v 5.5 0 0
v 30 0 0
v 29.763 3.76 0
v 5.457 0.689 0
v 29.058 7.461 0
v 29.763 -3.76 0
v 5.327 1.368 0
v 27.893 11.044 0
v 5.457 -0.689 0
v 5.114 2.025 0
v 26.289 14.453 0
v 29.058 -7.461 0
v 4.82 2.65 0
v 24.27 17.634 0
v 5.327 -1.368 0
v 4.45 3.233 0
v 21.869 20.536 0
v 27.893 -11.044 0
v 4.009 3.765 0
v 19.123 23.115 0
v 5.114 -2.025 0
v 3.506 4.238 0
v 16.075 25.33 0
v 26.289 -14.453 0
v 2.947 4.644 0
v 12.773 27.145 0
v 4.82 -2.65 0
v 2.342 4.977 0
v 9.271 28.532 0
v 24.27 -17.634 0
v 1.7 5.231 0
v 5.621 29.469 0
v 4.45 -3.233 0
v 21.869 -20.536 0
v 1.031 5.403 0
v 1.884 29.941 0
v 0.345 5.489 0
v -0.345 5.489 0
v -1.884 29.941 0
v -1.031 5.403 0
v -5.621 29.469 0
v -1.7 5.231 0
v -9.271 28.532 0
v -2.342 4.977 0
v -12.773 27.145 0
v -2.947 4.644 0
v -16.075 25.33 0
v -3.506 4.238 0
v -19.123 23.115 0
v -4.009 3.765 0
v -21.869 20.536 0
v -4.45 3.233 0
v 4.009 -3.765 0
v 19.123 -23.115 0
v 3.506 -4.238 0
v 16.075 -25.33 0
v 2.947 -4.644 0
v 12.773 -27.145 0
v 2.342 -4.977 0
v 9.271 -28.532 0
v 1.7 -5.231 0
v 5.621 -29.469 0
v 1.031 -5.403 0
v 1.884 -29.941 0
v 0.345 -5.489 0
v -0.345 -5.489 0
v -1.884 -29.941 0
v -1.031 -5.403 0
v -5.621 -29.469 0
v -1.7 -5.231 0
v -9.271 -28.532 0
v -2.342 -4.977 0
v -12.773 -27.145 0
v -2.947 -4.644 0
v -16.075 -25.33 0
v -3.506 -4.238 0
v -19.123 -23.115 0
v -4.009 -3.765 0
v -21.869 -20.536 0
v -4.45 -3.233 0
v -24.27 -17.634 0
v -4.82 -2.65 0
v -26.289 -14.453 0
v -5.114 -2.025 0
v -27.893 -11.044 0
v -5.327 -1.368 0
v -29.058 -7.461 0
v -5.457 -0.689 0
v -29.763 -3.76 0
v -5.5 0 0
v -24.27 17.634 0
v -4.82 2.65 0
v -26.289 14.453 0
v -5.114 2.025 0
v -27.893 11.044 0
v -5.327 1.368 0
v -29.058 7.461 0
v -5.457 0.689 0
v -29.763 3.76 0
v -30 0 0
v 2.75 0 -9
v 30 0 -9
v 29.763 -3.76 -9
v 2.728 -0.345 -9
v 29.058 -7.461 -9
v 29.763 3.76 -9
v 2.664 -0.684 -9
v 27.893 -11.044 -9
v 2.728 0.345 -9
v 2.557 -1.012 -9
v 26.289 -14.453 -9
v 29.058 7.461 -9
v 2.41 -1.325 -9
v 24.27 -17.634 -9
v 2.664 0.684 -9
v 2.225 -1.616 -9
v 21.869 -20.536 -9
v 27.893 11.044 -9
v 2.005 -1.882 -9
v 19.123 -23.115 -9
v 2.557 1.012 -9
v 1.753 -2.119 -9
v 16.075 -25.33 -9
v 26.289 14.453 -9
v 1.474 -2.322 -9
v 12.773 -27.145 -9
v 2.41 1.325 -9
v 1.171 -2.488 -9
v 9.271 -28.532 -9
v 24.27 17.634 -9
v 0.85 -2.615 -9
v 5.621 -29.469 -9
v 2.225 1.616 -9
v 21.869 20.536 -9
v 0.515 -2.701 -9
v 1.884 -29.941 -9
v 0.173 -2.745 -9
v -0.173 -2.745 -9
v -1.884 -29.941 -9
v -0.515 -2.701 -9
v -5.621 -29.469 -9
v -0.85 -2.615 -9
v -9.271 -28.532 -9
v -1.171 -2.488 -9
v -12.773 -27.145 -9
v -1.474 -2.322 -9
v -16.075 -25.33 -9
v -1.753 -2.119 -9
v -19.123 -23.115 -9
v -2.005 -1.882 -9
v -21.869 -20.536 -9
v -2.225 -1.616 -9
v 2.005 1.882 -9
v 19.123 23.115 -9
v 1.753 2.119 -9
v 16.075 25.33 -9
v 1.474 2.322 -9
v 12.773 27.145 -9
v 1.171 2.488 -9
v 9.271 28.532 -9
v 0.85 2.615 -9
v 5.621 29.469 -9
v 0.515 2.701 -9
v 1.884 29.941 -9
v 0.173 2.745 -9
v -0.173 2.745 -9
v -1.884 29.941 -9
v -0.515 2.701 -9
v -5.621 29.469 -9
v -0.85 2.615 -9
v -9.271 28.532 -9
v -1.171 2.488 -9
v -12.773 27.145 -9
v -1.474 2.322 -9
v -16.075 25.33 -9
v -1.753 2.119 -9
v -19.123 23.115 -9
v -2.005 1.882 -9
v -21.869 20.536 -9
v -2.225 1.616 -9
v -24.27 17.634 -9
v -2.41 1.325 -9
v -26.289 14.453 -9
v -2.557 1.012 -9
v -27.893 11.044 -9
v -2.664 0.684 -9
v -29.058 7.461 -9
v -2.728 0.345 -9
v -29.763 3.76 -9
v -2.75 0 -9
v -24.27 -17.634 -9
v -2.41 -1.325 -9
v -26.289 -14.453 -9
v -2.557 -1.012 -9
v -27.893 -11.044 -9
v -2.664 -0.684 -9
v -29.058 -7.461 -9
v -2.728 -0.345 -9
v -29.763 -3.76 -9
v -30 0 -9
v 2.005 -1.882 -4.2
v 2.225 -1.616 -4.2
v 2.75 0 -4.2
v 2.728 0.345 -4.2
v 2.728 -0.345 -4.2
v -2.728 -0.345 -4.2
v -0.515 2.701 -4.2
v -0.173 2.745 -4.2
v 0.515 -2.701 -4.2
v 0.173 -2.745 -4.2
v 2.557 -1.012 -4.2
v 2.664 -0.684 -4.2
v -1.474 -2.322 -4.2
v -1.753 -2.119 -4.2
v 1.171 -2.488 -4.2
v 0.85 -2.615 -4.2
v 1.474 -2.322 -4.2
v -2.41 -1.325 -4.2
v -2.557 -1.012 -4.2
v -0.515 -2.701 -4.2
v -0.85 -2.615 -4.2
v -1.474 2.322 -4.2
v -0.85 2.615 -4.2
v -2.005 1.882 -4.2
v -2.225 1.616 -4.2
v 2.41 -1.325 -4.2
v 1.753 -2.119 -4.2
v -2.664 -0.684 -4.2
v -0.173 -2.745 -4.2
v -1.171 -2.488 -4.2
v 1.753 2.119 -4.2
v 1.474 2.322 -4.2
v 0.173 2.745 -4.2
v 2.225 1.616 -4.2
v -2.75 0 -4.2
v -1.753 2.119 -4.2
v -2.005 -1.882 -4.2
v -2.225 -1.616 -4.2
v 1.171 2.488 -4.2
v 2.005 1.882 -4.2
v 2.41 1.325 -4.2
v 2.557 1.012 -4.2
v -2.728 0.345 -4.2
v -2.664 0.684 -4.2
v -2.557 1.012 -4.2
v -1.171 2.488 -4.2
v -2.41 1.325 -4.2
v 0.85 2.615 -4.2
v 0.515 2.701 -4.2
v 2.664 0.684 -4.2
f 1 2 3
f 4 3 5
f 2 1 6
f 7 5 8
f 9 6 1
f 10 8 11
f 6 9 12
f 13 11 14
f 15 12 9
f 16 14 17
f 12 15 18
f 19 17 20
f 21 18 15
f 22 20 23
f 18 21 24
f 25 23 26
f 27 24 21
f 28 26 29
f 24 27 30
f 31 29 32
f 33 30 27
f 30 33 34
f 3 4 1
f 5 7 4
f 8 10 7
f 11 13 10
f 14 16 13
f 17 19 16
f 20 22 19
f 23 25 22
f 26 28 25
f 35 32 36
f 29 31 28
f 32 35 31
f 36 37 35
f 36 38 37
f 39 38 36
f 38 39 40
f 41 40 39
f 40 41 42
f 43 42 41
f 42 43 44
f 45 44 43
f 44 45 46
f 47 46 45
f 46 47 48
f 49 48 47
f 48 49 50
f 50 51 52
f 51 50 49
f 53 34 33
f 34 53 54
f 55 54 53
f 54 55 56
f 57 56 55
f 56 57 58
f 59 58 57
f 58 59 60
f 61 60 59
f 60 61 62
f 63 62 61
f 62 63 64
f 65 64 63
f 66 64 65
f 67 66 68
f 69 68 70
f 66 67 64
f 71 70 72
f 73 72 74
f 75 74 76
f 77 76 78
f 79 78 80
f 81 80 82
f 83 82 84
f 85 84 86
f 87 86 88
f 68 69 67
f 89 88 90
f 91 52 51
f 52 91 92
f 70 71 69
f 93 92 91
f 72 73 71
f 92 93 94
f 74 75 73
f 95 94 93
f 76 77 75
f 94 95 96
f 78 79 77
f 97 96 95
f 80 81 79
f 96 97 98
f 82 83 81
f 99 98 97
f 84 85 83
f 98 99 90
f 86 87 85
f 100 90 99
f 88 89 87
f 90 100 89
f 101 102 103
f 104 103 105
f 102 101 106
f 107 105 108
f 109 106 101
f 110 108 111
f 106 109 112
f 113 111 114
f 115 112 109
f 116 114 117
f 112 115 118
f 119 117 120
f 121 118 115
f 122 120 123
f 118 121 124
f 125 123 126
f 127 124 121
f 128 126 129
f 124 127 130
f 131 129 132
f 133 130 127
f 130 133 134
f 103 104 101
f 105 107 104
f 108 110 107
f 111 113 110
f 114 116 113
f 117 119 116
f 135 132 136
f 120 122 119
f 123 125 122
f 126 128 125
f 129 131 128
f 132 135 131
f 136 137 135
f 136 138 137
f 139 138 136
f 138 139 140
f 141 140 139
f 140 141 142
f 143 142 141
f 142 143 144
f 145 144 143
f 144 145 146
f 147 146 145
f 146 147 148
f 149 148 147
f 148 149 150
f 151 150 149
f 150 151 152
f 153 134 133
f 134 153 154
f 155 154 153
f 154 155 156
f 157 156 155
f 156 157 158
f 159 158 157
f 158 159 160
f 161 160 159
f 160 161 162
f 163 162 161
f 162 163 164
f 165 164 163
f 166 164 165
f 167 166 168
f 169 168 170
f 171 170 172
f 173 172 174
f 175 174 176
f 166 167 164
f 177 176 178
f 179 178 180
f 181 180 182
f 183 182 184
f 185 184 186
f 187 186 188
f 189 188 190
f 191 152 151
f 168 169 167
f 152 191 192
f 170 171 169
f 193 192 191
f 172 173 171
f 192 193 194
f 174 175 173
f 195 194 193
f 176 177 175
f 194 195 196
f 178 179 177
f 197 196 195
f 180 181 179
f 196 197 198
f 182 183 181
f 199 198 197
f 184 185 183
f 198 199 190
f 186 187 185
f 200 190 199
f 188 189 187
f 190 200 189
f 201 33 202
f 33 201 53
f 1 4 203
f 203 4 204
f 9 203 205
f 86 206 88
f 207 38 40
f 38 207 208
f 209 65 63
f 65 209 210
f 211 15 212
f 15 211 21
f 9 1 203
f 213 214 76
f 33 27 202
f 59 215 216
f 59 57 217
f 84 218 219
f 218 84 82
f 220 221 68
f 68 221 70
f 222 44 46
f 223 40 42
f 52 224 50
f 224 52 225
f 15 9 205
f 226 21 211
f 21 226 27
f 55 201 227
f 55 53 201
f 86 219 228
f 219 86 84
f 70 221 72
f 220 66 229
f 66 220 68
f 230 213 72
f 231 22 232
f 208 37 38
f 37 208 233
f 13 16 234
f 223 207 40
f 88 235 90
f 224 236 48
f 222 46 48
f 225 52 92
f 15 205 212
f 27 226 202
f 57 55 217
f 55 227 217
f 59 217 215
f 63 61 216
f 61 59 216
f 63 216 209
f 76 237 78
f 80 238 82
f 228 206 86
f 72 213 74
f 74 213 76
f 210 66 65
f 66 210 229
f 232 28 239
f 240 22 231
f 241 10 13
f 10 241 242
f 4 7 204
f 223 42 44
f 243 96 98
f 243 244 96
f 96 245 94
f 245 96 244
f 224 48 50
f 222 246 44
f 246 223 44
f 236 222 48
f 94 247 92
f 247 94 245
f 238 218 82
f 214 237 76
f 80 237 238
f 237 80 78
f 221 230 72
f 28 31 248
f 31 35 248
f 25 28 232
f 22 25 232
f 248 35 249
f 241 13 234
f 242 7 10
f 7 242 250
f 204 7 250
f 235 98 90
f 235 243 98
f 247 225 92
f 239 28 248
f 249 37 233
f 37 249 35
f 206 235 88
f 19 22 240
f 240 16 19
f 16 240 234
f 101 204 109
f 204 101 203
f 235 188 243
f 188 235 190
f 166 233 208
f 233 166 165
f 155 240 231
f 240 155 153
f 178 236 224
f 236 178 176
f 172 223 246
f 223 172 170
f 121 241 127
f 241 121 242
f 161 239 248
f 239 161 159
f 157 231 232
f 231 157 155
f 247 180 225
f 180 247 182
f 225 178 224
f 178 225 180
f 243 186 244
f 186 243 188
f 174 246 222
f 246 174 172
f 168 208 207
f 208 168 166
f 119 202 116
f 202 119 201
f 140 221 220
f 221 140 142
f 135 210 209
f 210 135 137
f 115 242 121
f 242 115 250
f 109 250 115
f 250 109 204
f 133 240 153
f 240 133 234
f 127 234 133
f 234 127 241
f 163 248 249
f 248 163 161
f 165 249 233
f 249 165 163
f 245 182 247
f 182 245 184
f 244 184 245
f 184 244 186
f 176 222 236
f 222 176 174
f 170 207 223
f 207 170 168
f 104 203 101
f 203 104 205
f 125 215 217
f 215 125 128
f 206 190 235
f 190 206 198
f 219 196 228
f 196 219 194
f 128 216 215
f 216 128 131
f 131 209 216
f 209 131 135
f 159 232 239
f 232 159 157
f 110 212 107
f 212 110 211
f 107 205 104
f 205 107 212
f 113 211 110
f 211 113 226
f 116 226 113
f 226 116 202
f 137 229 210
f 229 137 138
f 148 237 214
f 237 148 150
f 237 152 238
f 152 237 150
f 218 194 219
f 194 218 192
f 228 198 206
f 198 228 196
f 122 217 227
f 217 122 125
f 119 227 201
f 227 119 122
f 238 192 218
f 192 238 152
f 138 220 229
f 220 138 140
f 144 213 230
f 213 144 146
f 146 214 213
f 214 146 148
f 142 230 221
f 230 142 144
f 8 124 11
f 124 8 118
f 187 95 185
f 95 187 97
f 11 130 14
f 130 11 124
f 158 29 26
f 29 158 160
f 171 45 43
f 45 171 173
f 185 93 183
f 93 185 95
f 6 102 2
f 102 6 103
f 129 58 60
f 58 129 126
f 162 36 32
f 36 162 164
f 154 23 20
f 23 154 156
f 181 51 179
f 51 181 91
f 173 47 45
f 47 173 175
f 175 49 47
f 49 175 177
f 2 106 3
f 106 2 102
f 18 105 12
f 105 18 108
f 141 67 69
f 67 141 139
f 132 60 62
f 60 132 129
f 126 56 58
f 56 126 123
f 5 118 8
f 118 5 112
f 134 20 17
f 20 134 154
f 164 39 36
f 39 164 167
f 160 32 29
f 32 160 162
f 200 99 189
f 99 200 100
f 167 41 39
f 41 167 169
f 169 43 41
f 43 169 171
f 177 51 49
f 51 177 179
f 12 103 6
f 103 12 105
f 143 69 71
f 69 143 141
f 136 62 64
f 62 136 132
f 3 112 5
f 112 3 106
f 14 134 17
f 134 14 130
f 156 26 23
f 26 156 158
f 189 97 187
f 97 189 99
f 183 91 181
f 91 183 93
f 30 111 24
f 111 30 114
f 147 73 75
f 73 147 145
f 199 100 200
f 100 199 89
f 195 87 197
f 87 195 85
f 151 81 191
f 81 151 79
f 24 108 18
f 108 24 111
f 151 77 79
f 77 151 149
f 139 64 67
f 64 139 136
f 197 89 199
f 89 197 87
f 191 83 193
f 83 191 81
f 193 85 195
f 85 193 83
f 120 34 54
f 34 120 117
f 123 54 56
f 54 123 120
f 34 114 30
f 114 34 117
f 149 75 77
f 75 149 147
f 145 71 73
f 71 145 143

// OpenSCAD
$fn = 50;


difference() {
	union() {
		translate(v = [0, 0, -9.0000000000]) {
			cylinder(h = 9, r = 30.0000000000);
		}
	}
	union() {
		translate(v = [0, 0, 0]) {
			rotate(a = [0, 0, 0]) {
				difference() {
					union() {
						translate(v = [0, 0, -9.0000000000]) {
							cylinder(h = 9, r = 2.2500000000);
						}
						translate(v = [0, 0, -4.2000000000]) {
							cylinder(h = 4.2000000000, r1 = 2.7500000000, r2 = 5.5000000000);
						}
						translate(v = [0, 0, -9.0000000000]) {
							cylinder(h = 9, r = 2.7500000000);
						}
						translate(v = [0, 0, -9.0000000000]) {
							cylinder(h = 9, r = 2.2500000000);
						}
					}
					union();
				}
			}
		}
	}
}
